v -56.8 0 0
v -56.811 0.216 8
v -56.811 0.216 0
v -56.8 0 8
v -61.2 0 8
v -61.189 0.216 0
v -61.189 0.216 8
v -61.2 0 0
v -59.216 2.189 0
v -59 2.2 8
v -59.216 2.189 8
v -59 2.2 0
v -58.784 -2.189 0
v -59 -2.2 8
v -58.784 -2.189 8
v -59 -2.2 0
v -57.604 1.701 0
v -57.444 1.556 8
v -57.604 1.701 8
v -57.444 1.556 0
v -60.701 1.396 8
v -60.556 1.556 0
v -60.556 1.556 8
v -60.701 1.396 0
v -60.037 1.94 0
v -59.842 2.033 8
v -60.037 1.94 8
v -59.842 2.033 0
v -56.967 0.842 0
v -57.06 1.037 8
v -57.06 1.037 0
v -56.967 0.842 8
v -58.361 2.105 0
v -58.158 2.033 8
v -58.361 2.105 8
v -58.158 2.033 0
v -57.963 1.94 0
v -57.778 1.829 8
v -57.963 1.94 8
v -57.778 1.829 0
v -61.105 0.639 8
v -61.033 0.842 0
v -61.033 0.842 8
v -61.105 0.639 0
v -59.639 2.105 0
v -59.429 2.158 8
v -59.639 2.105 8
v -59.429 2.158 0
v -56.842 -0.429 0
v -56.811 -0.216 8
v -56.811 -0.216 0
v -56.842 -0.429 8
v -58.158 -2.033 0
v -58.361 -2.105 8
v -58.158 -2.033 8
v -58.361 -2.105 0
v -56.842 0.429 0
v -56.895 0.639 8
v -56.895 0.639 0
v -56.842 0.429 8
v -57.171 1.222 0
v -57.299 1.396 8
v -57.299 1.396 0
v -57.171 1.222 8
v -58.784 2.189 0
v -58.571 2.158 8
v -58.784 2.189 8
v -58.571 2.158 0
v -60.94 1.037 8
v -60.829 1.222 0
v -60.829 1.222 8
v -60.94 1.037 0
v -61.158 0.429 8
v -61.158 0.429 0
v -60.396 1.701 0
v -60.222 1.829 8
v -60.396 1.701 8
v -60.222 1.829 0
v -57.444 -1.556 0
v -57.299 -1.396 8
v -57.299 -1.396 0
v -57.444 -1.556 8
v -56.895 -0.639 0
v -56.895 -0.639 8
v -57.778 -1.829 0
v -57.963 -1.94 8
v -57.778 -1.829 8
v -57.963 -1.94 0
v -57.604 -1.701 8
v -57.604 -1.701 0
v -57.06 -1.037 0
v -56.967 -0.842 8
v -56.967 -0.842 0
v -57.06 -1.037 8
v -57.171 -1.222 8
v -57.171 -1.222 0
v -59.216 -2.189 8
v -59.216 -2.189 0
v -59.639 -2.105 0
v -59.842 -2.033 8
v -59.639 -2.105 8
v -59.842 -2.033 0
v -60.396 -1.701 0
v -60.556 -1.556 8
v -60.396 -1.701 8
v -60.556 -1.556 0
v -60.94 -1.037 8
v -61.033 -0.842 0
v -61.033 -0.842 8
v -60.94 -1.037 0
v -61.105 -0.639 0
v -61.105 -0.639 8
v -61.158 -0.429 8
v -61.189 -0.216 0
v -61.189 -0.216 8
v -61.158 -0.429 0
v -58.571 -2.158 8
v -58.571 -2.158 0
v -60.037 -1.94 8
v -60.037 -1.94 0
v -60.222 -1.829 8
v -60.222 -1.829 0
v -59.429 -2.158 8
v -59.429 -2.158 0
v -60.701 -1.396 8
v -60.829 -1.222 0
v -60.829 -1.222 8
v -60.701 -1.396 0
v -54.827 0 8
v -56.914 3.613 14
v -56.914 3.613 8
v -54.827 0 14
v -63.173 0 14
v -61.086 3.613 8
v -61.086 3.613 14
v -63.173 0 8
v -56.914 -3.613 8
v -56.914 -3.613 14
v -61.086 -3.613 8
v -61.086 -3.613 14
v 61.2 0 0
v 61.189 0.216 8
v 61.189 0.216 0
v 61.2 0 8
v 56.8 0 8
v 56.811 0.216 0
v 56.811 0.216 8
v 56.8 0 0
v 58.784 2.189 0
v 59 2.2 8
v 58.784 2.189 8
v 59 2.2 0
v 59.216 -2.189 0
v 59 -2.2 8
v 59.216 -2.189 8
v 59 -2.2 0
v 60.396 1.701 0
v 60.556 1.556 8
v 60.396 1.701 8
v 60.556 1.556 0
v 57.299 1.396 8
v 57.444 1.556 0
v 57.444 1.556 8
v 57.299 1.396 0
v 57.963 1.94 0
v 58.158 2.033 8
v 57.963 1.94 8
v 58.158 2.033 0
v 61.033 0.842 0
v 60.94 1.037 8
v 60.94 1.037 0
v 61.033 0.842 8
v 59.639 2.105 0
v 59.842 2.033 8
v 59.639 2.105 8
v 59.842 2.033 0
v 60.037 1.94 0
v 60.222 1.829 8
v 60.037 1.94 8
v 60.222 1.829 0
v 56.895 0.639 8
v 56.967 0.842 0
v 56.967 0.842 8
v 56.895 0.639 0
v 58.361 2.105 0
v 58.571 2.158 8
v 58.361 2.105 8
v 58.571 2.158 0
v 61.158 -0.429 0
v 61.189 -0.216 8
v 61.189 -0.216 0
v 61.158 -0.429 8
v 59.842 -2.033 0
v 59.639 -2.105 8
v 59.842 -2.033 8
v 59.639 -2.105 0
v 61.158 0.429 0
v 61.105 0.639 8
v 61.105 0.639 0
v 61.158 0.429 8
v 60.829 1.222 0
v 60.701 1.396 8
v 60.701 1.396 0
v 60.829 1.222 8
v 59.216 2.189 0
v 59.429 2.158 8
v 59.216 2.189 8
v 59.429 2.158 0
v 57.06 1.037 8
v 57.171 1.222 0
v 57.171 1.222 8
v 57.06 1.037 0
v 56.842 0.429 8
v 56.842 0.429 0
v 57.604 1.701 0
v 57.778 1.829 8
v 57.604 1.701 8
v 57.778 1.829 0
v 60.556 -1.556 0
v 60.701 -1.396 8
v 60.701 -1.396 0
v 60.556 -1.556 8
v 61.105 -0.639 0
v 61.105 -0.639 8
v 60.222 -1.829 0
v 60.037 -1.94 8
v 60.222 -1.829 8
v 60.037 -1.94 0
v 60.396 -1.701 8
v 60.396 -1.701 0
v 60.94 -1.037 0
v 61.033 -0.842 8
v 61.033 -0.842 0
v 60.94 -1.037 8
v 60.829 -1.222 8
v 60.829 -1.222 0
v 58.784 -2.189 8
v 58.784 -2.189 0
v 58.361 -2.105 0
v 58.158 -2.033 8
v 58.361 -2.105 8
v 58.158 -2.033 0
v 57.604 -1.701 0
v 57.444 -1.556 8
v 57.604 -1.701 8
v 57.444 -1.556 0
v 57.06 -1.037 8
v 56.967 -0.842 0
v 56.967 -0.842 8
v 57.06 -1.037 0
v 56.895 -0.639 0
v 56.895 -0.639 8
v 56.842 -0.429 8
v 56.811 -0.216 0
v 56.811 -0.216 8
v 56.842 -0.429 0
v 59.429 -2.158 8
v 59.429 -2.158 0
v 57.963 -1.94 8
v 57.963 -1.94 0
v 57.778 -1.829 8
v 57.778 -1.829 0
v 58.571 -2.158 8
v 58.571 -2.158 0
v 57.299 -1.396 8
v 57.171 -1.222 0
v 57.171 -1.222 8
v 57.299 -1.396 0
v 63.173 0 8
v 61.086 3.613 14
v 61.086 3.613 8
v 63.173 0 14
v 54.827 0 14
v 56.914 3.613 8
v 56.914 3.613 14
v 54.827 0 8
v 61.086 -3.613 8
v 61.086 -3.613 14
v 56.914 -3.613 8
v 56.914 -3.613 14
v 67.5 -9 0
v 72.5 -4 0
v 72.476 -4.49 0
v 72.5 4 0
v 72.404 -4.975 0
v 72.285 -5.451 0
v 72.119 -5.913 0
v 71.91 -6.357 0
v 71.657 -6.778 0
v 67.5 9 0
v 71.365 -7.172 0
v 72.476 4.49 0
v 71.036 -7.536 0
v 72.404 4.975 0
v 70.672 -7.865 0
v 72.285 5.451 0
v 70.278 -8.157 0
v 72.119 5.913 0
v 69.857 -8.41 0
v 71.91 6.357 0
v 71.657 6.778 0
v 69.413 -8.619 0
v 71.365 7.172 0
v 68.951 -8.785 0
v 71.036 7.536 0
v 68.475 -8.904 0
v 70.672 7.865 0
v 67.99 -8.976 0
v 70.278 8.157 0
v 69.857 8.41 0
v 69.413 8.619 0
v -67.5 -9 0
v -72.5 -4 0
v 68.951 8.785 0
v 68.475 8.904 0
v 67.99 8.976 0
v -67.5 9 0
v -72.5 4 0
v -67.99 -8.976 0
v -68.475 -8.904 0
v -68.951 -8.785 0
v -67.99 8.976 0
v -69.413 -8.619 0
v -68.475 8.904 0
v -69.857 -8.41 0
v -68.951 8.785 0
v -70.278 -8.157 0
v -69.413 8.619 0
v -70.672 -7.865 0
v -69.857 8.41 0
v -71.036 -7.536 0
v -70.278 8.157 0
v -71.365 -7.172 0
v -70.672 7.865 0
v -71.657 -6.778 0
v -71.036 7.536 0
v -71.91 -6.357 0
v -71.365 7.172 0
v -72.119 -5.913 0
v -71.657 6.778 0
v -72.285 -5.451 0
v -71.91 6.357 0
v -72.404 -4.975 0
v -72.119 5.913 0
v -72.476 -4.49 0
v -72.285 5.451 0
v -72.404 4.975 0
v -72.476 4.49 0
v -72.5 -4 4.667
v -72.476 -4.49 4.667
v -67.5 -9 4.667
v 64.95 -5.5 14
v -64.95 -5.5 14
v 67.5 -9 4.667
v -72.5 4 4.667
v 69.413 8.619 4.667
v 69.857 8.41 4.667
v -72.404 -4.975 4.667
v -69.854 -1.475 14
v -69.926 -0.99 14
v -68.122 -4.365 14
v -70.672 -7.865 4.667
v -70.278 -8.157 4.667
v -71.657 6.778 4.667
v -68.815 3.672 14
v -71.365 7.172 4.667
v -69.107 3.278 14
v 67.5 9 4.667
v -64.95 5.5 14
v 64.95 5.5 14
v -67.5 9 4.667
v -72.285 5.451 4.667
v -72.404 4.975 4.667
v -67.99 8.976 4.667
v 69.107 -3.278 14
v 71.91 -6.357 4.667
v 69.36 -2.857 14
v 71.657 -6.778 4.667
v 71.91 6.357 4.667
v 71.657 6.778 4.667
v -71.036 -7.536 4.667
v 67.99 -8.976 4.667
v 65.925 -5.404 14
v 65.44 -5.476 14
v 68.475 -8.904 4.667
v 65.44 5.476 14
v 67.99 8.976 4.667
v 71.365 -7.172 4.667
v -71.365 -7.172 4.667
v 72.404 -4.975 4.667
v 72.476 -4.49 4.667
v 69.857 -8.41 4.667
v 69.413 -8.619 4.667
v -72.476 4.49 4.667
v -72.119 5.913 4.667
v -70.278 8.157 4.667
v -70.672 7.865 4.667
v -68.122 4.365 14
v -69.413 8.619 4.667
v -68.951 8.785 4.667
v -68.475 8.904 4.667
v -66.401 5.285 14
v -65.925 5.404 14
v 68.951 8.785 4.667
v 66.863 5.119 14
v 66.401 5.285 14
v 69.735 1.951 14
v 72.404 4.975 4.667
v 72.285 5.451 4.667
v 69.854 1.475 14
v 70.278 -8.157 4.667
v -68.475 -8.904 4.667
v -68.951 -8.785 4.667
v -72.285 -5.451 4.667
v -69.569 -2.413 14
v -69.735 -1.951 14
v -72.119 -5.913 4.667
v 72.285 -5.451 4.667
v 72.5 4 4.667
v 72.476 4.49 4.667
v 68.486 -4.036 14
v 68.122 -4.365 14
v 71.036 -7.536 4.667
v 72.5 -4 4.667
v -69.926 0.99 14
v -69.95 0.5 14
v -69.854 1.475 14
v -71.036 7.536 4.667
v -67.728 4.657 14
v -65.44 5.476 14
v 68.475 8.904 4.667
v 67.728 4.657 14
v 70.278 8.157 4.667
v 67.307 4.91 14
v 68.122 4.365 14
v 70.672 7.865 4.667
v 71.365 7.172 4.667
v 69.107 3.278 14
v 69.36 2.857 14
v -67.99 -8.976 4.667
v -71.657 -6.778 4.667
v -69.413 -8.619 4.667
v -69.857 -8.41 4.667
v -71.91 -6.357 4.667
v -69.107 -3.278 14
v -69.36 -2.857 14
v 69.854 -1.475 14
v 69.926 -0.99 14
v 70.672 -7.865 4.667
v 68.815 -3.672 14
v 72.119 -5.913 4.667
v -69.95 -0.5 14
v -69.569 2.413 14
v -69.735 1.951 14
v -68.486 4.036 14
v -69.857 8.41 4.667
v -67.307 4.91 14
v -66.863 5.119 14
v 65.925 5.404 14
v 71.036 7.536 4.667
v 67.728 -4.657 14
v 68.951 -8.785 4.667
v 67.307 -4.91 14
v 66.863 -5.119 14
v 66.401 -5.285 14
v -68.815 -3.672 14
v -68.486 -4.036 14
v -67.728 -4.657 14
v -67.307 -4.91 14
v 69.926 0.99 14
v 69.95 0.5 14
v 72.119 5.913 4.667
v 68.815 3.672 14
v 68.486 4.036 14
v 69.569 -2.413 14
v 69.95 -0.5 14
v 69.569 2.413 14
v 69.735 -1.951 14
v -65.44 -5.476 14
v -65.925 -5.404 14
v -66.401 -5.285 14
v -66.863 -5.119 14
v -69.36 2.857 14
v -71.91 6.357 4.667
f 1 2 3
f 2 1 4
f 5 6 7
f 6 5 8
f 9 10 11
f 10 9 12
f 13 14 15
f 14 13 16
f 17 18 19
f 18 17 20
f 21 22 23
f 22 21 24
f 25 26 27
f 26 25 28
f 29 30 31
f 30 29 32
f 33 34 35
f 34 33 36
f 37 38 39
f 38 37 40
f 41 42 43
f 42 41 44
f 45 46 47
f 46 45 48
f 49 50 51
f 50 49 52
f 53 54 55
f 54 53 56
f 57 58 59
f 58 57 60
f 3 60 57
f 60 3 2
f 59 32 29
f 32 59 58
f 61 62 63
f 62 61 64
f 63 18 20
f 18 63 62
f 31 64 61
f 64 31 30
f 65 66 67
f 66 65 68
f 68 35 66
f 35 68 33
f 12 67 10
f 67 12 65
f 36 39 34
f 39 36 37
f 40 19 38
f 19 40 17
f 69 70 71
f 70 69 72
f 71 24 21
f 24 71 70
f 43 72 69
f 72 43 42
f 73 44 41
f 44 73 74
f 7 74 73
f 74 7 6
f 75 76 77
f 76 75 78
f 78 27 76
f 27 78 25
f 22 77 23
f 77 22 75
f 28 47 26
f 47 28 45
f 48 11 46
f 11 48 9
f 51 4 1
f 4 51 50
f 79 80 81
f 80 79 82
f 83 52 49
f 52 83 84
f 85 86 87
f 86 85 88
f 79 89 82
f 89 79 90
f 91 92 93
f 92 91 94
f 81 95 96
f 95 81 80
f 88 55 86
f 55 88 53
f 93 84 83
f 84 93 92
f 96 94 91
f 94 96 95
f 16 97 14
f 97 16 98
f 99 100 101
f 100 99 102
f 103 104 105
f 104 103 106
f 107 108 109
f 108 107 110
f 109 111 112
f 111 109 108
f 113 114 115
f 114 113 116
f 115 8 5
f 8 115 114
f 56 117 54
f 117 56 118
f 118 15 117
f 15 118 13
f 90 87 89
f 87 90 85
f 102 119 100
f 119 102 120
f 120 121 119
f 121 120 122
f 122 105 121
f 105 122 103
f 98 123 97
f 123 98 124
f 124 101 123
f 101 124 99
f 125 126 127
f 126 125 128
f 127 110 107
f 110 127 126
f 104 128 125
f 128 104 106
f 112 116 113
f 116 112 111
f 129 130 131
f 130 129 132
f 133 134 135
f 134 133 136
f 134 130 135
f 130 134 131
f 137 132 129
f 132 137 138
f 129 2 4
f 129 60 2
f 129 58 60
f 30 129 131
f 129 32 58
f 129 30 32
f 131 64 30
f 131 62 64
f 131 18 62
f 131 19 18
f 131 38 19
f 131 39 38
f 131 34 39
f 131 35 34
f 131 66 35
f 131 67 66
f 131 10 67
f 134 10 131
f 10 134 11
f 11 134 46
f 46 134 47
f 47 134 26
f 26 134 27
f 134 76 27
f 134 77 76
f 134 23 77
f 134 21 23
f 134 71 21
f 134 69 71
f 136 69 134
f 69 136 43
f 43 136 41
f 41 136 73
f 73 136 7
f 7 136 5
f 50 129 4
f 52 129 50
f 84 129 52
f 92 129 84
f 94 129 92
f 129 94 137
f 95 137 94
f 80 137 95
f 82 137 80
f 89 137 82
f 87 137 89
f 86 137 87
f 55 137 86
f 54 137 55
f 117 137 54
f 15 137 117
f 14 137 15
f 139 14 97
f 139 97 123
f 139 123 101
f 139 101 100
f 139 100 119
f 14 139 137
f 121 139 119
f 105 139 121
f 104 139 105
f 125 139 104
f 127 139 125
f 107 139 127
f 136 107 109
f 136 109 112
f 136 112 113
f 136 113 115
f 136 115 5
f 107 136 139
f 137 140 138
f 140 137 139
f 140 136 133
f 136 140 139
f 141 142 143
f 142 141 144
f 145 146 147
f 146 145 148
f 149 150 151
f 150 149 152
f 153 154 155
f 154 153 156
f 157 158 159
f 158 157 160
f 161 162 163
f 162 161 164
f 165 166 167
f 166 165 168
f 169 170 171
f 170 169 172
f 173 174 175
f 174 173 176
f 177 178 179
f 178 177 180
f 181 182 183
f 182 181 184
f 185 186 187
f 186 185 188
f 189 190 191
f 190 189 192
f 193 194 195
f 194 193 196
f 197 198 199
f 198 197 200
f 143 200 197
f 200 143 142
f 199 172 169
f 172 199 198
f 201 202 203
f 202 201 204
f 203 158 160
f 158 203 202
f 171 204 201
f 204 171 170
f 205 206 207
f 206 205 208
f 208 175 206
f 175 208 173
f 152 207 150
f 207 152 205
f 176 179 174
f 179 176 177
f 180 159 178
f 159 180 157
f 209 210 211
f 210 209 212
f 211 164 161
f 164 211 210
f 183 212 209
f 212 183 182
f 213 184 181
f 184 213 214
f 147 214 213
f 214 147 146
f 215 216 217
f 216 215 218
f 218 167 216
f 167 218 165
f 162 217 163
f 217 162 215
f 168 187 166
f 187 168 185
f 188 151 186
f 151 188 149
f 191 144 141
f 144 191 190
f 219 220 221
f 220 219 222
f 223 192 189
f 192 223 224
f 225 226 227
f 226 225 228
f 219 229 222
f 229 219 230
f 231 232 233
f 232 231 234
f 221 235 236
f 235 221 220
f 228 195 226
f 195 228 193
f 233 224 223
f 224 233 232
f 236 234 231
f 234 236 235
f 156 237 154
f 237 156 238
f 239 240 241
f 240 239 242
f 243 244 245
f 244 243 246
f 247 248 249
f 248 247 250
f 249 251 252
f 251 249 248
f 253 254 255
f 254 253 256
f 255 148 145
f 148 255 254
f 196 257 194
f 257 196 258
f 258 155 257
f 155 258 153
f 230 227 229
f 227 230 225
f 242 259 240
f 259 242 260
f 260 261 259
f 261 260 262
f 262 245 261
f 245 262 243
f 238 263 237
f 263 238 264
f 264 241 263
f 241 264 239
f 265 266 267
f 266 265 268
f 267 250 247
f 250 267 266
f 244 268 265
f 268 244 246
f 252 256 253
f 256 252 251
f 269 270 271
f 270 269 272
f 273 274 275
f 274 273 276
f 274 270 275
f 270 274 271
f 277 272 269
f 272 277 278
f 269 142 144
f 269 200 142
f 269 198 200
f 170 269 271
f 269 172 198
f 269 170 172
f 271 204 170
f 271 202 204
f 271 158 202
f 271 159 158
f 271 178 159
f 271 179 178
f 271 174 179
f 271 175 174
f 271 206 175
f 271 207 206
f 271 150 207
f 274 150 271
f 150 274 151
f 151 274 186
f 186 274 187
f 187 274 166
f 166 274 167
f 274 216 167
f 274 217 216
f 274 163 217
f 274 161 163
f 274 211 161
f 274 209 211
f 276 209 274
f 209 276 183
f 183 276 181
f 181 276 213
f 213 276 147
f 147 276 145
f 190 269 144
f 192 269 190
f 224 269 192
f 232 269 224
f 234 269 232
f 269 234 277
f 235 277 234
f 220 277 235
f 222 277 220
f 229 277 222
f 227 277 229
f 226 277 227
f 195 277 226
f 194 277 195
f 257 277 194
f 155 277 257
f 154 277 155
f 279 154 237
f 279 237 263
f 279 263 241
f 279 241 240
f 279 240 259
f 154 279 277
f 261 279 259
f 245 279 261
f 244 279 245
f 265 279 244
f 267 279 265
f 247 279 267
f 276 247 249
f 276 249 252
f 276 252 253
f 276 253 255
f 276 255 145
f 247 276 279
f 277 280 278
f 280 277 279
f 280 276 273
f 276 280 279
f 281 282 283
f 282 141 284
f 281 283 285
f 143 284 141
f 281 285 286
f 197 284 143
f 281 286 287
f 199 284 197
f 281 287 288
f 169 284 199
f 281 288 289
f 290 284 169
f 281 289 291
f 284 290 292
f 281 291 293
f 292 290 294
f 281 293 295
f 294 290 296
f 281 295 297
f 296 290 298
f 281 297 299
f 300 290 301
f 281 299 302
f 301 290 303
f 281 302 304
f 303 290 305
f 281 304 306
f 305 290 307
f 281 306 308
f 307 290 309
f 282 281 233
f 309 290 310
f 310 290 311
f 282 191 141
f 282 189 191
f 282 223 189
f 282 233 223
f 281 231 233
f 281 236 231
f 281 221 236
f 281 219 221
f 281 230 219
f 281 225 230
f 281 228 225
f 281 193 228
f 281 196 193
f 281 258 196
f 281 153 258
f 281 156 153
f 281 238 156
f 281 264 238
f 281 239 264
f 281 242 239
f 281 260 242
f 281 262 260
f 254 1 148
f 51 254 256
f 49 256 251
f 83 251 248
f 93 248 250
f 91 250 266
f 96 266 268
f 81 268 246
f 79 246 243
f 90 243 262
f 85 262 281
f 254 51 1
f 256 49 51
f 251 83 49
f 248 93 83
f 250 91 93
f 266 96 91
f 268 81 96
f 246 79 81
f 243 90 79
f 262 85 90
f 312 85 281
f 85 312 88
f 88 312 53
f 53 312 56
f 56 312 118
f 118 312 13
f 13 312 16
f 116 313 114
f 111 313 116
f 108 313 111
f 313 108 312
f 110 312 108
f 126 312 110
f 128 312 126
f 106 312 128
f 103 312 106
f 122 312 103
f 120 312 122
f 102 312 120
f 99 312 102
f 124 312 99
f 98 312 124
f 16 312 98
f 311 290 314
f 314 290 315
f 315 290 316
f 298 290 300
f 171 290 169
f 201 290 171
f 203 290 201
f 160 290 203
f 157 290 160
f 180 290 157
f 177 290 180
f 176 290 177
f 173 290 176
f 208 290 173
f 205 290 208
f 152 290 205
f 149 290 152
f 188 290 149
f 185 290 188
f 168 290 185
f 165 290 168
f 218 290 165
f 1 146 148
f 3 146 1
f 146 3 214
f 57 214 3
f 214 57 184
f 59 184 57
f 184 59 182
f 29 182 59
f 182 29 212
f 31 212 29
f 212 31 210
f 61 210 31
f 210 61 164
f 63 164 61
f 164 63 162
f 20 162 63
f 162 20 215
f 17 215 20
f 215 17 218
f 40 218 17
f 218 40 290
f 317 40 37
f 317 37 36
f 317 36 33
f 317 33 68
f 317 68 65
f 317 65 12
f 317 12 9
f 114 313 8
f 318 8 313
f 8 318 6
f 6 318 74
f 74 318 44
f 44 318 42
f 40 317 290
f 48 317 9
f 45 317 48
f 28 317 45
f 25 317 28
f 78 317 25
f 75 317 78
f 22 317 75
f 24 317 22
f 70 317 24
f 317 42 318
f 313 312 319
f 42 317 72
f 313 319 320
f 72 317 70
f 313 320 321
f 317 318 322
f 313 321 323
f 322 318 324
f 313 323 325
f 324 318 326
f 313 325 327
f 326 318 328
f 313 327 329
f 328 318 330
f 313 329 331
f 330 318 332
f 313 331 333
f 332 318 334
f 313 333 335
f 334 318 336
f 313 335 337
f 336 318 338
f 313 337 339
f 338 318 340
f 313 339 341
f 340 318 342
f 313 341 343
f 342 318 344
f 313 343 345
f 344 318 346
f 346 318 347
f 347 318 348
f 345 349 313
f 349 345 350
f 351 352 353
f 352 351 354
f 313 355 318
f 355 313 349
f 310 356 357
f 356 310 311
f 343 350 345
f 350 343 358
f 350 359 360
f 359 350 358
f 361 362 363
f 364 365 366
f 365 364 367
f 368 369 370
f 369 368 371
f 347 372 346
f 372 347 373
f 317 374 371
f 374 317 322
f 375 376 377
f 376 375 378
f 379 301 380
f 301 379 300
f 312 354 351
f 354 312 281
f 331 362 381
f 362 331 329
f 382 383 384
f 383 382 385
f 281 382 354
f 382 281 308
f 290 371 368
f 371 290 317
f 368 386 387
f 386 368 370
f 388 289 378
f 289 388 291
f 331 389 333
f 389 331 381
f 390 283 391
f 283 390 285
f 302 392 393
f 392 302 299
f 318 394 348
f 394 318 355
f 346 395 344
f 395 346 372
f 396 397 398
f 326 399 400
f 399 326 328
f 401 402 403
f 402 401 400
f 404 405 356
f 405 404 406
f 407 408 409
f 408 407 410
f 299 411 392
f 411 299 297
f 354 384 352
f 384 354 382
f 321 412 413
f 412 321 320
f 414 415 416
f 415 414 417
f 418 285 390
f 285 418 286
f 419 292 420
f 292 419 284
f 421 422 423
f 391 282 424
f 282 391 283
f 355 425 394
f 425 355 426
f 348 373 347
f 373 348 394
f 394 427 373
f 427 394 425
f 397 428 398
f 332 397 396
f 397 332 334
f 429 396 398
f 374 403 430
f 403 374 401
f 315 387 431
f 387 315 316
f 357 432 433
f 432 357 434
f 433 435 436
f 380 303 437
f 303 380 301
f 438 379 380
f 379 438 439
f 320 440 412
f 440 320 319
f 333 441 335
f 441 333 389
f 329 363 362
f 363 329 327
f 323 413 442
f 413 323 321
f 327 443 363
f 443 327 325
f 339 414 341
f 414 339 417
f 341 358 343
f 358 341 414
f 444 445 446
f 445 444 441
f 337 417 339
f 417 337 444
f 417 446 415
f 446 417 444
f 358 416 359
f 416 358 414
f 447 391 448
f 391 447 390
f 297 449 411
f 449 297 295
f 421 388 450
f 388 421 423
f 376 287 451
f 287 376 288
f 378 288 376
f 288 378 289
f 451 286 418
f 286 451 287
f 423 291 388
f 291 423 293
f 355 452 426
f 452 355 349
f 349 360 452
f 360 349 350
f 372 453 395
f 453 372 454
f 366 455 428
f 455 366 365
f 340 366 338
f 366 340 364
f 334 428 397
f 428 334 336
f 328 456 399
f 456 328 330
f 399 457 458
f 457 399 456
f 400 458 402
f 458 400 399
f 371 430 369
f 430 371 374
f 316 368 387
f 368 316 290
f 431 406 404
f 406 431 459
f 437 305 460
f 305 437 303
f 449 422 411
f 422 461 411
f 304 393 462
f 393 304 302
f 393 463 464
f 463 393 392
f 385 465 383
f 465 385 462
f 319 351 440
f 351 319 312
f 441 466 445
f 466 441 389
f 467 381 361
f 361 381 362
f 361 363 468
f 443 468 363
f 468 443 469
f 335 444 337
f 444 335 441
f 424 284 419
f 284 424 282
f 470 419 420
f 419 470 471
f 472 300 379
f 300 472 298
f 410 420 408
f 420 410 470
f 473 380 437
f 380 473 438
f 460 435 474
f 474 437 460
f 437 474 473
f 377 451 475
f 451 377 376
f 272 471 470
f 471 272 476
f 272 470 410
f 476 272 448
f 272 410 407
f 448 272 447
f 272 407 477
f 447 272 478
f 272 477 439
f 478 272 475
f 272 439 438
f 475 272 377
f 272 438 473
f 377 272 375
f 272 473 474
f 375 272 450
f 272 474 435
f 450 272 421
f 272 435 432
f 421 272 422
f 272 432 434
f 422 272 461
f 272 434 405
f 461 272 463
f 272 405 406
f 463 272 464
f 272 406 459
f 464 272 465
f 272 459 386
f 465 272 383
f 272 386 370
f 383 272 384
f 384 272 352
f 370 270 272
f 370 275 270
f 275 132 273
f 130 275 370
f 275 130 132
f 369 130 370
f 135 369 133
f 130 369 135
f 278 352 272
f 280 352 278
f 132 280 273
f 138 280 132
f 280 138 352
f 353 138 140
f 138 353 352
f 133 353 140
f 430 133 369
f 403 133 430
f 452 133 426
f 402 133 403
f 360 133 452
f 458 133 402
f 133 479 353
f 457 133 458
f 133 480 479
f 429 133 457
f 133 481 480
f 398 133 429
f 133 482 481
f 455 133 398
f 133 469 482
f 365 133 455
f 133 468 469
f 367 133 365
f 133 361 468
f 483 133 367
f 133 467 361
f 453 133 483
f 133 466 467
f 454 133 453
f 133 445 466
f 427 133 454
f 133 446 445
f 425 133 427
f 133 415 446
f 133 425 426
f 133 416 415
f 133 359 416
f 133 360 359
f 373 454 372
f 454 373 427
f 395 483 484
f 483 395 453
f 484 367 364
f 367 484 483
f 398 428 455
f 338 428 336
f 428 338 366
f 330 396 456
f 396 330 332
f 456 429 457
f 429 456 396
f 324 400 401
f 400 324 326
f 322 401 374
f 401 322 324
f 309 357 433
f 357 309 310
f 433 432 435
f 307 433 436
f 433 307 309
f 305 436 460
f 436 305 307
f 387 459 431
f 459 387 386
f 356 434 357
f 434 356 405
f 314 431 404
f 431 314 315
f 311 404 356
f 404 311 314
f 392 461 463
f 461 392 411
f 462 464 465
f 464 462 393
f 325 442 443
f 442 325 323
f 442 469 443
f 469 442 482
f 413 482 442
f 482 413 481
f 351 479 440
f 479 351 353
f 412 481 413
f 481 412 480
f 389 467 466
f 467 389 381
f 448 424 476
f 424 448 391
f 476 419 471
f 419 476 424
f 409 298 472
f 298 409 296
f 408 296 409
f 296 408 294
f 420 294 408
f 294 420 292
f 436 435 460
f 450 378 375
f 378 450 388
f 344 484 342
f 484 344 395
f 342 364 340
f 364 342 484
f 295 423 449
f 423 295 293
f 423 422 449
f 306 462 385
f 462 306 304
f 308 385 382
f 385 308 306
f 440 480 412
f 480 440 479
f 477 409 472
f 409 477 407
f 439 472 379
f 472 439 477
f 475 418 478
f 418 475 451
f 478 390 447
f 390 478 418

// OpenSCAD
// file: rounded_box.scad
/**
 * Small "library" for creating boxes with rounded edges.
 *
 * Hendrik Busch, 2017-18 (https://github.com/hmbusch)
 *
 */
 
/**
 * Creates a 2D-shape of a box with the given dimensions and rounded edges. 
 * Be sure to increase $fn for nicer edges.
 *
 * @param width
 *          the desired width of the box (default is 10mm)
 * @param depth
 *          the desired depth of the box (default is 10mm)
 * @param height
 *          the desired height of the box (default is 10mm)
 * @param edge_radius
 *          the radius of all the edges on the xy-plane (default is 2mm)
 */  
module box_with_round_edges_2d(width = 10, depth = 10, edge_radius = 2) {
    ed = edge_radius * 2;
    translate([edge_radius, edge_radius, 0]) hull() {
        circle(d = ed);
        translate([width - ed, 0, 0]) circle(d = ed);
        translate([0, depth - ed, 0]) circle(d = ed);
        translate([width - ed, depth - ed, 0]) circle(d = ed);    
    }
}
 
/**
 * Call to create a box with rounded edges (edges will be round on one plane only).
 * Be sure to increase $fn for nicer edges.
 * 
 * @param width
 *          the desired width of the box (default is 10mm)
 * @param depth
 *          the desired depth of the box (default is 10mm)
 * @param height
 *          the desired height of the box (default is 10mm)
 * @param edge_radius
 *          the radius of all the edges on the xy-plane (default is 2mm)
 *
 */
module box_with_round_edges_3d(width = 10, depth = 10, height = 10, edge_radius = 2) {
	linear_extrude(height = height) {
		box_with_round_edges_2d(width, depth, edge_radius);
	}
}

/**
 * Call to create a box with rounded edges (edges will be round on one plane only).
 * Be sure to increase $fn for nicer edges. This module has inputs that resemble
 * those of cube() so that it can act as a drop-in replacement.
 * 
 * @param dimensions
 *          3-value-array with x, y and z dimensions (default is 10x10x10mm).
 * @param edge_radius
 *          the radius of all the edges on the xy-plane (default is 2mm)
 *
 */
module box_with_round_edges_3d(dimensions = [10, 10, 10], edge_radius = 2) {
	linear_extrude(height = dimensions[2]) {
		box_with_round_edges_2d(dimensions[0], dimensions[1], edge_radius);
	}
}
// file: screw_holes.scad
/**
 * Generates a hole for screws, including screw shaft and head or shaft and nut.
 * This module can be parameterized to produce the necessary bodies.
 */
module screw_trap(hole = 3, top = 6, bottomHeight = 5, topHeight = 5, forNut = false) {
    translate([0, 0, -0.01]) cylinder(d = hole + 0.2, h = bottomHeight + 0.02);
    if (forNut) {
        upscaleRatio = 1/cos(180/6);
        translate([0, 0, bottomHeight]) cylinder(r = (top*0.99)/2 * upscaleRatio, h = topHeight, $fn=6);
    }
    else {
        translate([0, 0, bottomHeight]) cylinder(d = top + 0.2, h = topHeight);
    }
}

module nut_trap(hole_diameter = 3, size_head = 6, height_shaft = 5, height_trap = 5) {
    screw_trap(hole_diameter, size_head, height_shaft, height_trap, true);
}
// main file
use <screw_holes.scad>
use <rounded_box.scad>

/* [Measurements] */

// Distance between the screw holes
Hole_Spacing = 118; // [50:0.5:300]

// Diameter of the screw holes
Hole_Size = 4.2;    // [3.2:M3, 4.2:M4, 5.2:M5]

// Nut size
Nut_Size = 7.3;     // [5.5:M3, 7.3:M4, 8.0:M5]

// The depth by which the nut is sunk into the bar
Nut_Depth = 6;      // [1.8:0.1:10]

// The height of the bar in total
Bar_Height = 14;    // [5:1:20]

// The depth of the bar 
Bar_Depth = 18;    // [6:1:30]

// The width of the bar (must be > Hole Spacing)
Bar_Width = 145;   // [10:1:300]

$fn = 64;
f = 0.01;

module bar() {
    top_offset_x = (Bar_Width - (Hole_Spacing + 3 * Nut_Size))/2;
    top_offset_y = Bar_Depth/4;

    hull() {
        box_with_round_edges_3d([Bar_Width, Bar_Depth, Bar_Height/3], 5);
        translate([top_offset_x, top_offset_y, 0])
            box_with_round_edges_3d([Hole_Spacing + 3 * Nut_Size, Bar_Depth/2, Bar_Height], 5); 
    }
}

module screw_holes() {
    translate([-Hole_Spacing/2, 0, -f]) {
        screw_trap(Hole_Size, Nut_Size, Bar_Height - Nut_Depth + f, Nut_Depth + f, true);
    } 
    translate([Hole_Spacing/2, 0, -f]) {
        screw_trap(Hole_Size, Nut_Size, Bar_Height - Nut_Depth + f, Nut_Depth + f, true);
    }    
}

difference() {
    translate([-Bar_Width/2, -Bar_Depth/2, 0])
        bar();    
    screw_holes();
}
